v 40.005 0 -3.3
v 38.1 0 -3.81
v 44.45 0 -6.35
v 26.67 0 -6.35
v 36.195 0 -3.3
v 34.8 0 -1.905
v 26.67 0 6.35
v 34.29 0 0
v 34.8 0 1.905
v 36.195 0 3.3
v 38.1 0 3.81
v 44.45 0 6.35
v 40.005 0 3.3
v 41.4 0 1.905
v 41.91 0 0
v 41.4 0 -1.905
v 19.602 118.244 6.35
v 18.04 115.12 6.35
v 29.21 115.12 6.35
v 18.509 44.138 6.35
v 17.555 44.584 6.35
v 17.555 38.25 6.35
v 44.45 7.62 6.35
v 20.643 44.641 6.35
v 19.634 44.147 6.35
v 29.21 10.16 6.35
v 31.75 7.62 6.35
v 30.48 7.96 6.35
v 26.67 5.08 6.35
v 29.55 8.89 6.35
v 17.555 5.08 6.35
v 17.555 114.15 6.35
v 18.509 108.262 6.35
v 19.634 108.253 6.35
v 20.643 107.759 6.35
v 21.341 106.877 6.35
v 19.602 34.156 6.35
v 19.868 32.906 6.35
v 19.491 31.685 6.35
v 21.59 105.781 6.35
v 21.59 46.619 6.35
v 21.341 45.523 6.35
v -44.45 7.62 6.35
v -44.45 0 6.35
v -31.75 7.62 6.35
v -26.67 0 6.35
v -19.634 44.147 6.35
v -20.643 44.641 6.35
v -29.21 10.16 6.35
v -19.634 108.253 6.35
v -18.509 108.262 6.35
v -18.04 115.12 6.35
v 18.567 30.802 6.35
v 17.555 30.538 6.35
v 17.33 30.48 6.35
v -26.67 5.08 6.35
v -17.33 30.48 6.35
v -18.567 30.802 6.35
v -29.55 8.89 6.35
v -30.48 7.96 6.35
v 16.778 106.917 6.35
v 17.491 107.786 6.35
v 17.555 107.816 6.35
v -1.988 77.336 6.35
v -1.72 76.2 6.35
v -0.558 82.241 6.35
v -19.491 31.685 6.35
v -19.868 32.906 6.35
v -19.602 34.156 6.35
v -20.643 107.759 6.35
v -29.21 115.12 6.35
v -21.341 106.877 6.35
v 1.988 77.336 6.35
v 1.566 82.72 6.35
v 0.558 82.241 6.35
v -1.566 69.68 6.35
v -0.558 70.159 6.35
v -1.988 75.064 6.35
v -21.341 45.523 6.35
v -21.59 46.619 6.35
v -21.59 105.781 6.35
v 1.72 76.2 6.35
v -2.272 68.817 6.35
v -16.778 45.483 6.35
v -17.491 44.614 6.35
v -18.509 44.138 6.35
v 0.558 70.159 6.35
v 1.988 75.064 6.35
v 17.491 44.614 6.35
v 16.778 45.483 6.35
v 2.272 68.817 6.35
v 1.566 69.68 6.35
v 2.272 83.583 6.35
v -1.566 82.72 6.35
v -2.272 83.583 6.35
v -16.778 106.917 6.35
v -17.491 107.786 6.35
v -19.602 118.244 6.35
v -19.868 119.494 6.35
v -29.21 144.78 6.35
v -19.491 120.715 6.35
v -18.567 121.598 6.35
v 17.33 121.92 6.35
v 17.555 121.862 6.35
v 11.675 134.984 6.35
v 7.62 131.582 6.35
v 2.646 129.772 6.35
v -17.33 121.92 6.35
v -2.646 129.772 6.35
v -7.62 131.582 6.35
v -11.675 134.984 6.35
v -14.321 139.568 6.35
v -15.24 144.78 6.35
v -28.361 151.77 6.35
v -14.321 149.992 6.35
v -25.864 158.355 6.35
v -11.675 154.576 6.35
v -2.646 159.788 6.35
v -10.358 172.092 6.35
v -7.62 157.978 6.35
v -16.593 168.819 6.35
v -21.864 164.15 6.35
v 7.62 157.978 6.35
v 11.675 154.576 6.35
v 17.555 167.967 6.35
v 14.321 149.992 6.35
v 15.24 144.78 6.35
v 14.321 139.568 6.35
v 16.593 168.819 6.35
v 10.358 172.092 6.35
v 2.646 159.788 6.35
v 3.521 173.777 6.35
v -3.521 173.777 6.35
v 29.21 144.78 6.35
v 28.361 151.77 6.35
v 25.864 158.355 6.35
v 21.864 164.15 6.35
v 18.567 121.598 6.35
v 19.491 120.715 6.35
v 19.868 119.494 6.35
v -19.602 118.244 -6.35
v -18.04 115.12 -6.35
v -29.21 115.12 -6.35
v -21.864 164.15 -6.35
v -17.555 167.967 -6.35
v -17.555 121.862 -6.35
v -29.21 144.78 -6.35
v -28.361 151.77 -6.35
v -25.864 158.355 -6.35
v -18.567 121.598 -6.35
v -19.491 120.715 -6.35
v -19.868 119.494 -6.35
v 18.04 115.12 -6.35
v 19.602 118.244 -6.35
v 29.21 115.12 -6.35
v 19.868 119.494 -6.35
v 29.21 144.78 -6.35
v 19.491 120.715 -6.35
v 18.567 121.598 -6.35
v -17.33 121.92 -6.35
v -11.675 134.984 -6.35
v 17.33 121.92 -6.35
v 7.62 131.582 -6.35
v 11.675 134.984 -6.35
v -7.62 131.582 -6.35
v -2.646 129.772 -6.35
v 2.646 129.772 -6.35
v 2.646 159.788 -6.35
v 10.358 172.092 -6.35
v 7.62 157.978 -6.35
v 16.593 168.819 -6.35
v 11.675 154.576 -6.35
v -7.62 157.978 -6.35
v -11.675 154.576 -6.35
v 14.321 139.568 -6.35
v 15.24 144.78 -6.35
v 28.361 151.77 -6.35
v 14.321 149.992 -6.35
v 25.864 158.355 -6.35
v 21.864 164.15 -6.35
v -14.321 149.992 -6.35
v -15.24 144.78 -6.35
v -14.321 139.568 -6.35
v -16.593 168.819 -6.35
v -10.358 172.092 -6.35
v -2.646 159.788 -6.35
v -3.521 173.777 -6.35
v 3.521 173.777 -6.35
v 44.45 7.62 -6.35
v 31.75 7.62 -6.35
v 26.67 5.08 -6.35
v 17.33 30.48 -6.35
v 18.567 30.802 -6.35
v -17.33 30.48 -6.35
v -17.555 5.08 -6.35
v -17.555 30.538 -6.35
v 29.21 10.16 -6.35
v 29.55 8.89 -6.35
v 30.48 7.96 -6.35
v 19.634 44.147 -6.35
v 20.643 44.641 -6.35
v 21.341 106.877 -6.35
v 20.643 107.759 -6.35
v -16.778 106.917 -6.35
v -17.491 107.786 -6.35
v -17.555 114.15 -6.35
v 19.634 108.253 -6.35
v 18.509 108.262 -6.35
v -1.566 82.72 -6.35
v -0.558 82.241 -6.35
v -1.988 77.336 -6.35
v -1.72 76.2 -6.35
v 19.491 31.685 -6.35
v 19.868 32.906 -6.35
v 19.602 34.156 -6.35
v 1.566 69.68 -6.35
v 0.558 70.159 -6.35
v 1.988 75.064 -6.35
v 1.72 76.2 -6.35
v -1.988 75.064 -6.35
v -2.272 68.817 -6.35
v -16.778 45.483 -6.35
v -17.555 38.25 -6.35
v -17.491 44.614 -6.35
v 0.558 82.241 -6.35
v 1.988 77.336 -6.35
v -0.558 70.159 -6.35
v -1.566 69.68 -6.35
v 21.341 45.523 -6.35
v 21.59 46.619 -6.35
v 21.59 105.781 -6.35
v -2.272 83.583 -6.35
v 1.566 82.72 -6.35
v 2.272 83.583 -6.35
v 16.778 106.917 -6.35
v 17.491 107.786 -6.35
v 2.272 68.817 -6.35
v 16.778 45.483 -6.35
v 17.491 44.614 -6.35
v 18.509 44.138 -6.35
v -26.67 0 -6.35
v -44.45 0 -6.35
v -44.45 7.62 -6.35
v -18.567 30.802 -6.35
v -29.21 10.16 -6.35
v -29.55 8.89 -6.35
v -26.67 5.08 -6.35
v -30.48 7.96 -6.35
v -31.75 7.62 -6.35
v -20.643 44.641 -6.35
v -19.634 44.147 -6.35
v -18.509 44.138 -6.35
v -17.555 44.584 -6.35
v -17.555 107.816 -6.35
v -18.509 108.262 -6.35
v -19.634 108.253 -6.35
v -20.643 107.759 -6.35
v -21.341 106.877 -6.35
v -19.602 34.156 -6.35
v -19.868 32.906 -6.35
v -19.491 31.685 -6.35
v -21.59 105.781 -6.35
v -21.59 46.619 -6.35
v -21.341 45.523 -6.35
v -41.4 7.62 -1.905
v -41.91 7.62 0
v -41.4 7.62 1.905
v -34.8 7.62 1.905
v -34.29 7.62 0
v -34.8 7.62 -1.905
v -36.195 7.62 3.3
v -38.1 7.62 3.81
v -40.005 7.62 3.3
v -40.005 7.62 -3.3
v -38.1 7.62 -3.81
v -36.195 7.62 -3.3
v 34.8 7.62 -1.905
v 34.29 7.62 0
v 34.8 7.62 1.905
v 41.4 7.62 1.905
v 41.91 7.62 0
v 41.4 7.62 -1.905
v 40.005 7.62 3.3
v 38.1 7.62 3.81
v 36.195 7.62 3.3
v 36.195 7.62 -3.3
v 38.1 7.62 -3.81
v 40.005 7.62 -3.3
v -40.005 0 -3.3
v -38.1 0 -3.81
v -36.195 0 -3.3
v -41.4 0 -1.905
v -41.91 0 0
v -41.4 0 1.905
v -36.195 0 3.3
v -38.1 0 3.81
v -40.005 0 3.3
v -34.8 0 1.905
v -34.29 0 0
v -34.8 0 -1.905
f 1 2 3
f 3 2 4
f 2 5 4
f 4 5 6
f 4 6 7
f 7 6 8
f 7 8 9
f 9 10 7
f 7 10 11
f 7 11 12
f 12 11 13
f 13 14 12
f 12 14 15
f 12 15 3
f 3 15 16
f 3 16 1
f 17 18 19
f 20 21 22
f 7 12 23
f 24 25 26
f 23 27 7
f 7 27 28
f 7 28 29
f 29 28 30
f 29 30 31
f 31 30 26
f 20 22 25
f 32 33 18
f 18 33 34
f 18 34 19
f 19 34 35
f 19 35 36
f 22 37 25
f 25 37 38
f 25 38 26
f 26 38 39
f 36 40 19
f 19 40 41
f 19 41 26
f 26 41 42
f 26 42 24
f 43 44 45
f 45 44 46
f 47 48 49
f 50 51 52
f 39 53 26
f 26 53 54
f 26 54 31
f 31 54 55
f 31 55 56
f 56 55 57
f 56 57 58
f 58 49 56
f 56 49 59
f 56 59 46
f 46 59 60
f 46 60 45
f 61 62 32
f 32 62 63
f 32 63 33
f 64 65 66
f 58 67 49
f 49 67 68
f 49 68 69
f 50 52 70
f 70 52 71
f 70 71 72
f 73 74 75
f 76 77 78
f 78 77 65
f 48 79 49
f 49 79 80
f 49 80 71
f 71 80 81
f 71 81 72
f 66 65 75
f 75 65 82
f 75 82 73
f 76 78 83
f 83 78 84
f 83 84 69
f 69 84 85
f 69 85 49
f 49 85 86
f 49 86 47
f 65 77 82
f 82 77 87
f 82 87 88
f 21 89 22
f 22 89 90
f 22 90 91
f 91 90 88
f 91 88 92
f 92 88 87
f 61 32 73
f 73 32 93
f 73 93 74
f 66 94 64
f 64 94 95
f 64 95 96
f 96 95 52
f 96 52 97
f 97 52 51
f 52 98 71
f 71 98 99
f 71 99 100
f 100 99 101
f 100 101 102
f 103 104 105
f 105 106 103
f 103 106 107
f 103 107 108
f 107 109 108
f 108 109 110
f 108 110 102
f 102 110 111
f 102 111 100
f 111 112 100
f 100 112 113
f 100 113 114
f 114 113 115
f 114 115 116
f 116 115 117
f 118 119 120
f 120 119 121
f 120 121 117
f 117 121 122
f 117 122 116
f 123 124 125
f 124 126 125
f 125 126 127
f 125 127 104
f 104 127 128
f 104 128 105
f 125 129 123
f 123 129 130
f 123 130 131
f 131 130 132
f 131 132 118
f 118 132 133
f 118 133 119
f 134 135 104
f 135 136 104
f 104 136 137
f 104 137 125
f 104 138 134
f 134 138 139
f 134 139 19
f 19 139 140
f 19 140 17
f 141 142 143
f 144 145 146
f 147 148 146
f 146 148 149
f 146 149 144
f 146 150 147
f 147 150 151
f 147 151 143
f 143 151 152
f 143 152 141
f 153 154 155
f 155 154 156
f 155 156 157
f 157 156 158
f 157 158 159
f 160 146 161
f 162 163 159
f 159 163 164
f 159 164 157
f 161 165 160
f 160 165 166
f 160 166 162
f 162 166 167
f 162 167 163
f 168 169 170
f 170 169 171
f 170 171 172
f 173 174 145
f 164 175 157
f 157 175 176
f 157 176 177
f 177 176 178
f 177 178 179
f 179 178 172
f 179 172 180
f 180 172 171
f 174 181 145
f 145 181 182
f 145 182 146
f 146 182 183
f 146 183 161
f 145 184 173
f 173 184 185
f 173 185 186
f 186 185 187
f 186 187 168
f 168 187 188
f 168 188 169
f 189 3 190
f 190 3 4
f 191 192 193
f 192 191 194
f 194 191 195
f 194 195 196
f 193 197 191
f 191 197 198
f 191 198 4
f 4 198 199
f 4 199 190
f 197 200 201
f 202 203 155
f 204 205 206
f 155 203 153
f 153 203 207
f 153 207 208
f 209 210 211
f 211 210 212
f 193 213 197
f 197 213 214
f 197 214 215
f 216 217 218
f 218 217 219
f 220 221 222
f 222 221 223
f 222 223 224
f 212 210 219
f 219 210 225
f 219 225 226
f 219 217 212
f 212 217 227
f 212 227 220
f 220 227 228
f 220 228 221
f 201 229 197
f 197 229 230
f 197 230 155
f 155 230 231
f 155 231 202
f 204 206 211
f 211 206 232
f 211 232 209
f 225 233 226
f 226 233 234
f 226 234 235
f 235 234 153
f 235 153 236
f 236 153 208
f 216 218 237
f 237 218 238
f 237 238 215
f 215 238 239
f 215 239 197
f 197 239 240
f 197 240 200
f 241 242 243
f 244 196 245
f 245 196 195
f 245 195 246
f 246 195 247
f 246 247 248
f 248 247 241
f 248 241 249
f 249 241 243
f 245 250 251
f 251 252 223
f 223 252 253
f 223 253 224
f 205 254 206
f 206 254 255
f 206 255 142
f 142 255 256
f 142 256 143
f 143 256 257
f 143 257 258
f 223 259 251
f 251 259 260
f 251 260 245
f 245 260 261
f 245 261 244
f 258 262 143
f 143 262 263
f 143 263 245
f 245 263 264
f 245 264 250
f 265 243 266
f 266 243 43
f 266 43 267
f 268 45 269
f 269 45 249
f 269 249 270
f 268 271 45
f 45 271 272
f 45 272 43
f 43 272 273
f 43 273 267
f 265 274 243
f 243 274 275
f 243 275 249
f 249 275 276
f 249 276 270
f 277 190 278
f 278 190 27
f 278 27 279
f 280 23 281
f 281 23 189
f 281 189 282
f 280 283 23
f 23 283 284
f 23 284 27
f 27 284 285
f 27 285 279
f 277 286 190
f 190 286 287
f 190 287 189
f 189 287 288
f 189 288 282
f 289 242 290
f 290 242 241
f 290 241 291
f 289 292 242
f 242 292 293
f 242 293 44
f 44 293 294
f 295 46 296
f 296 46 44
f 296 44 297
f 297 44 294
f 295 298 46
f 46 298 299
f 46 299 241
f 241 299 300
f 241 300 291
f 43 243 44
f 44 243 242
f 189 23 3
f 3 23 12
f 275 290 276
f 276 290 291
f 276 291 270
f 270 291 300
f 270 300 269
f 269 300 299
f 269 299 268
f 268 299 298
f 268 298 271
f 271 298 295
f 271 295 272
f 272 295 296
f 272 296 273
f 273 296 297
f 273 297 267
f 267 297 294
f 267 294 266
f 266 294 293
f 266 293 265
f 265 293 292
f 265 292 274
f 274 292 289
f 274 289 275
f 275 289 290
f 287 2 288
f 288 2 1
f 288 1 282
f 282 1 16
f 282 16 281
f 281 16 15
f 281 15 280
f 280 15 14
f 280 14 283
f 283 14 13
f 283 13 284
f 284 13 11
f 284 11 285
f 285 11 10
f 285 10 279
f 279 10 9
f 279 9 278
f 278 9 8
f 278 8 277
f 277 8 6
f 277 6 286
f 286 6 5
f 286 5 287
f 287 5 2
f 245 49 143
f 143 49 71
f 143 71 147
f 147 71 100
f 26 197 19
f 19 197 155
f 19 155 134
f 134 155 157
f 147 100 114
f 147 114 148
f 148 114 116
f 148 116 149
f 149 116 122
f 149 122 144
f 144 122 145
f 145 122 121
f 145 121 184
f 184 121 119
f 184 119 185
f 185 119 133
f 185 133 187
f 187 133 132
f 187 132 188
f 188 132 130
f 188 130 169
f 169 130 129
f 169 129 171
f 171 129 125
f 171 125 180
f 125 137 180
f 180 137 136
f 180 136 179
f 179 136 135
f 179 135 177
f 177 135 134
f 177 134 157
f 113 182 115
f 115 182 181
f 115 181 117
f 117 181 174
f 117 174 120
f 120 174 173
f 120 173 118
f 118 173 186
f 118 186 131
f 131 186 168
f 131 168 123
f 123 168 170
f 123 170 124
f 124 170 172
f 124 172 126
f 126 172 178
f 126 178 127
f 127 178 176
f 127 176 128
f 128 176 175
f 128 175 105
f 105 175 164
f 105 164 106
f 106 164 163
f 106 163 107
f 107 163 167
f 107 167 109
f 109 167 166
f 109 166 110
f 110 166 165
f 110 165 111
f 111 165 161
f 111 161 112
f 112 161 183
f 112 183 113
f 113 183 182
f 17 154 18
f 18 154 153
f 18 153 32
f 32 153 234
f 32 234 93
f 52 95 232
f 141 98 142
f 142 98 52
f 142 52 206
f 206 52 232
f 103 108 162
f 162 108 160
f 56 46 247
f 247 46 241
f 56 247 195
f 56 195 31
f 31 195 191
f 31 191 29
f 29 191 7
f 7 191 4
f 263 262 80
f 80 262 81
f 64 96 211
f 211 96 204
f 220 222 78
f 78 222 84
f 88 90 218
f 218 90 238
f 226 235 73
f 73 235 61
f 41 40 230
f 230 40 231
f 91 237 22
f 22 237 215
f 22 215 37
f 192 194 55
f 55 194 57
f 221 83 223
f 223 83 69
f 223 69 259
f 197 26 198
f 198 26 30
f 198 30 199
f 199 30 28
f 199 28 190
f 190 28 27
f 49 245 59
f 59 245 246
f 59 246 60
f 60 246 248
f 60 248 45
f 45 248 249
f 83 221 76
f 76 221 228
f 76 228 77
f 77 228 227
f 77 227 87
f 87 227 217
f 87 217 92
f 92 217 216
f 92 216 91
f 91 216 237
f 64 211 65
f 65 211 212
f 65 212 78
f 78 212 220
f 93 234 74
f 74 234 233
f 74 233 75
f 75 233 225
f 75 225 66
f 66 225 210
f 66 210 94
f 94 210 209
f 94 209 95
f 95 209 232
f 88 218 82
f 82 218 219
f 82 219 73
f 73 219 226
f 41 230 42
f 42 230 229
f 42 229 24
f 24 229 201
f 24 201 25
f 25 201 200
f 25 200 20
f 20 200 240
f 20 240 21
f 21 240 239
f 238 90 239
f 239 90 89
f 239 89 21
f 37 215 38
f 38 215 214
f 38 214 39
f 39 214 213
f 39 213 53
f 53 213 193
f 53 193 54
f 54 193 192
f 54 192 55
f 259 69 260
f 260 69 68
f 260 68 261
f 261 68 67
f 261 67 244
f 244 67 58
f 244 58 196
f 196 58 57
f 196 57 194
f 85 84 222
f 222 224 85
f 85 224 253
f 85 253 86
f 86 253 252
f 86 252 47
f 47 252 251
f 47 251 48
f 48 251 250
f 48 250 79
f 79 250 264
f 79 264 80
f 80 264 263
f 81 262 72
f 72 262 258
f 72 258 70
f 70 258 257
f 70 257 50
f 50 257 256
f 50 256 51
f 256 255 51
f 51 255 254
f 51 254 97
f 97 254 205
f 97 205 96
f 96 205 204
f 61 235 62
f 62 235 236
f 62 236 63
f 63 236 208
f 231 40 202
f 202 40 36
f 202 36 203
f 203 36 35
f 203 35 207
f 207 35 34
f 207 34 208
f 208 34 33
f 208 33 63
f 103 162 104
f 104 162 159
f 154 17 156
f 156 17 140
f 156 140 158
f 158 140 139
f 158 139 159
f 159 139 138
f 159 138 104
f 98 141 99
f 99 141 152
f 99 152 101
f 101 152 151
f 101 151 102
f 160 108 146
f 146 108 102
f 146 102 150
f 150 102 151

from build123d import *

# Parameters (mm, degrees)
SKETCH1_W           = 88.9
SKETCH1_H           = 12.7
SKETCH1_R           = 3.81
BOSS_EXTRUDE1_DEPTH = 7.62
SKETCH2_W           = 58.42
SKETCH2_H           = 12.7
BOSS_EXTRUDE2_DEPTH = 137.16
BOSS_EXTRUDE3_DEPTH = 12.7
SKETCH4_R           = 15.24
CUT_EXTRUDE1_DEPTH  = 12.7
CUT_EXTRUDE2_REACH  = 14.7
SKETCH5_W           = 53.34
SKETCH5_H           = 5.08
FILLET1_R           = 2.54
FILLET2_R           = 2.54


with BuildPart() as part:
    # Sketch1 → Boss-Extrude1 (new body)
    with BuildSketch(Plane(origin=(0, 0, 0), x_dir=(1, 0, 0), z_dir=(0, 1, 0))):
        Rectangle(SKETCH1_W, SKETCH1_H)
        with Locations((-38.1, 0)):
            Circle(SKETCH1_R, mode=Mode.SUBTRACT)
        with Locations((38.1, 0)):
            Circle(SKETCH1_R, mode=Mode.SUBTRACT)
    extrude(amount=BOSS_EXTRUDE1_DEPTH)

    # Sketch2 → Boss-Extrude2 (add)
    with BuildSketch(Plane(origin=(0, 7.62, 0), x_dir=(1, 0, 0), z_dir=(0, 1, 0))):
        Rectangle(SKETCH2_W, SKETCH2_H)
    extrude(amount=BOSS_EXTRUDE2_DEPTH)

    # Sketch3 → Boss-Extrude3 (add)
    with BuildSketch(Plane.XY.offset(6.35)):
        with BuildLine():
            Line((29.21, 144.78), (-29.21, 144.78))
            ThreePointArc((-29.21, 144.78), (0, 173.99), (29.21, 144.78))
        make_face()
    extrude(amount=-BOSS_EXTRUDE3_DEPTH)

    # Sketch4 → Cut-Extrude1 (cut)
    with BuildSketch(Plane(origin=(0, 0, -6.35), x_dir=(-1, 0, 0), z_dir=(0, 0, -1))):
        with Locations((0, 144.78)):
            Circle(SKETCH4_R)
    extrude(amount=-CUT_EXTRUDE1_DEPTH, mode=Mode.SUBTRACT)

    # Sketch5 → Cut-Extrude2 (cut, up to next)
    with BuildSketch(Plane.XY.offset(6.35), mode=Mode.PRIVATE) as cut_extrude2_sk1:
        Polygon((-21.440096834, 121.92), (21.440096834, 121.92), (0, 79.039806331), align=None)
    cut_extrude2_tool1 = extrude(cut_extrude2_sk1.sketch, amount=-CUT_EXTRUDE2_REACH, mode=Mode.PRIVATE) & part.part
    add(cut_extrude2_tool1.solids().sort_by_distance((0, 107.626602, 6.35))[0], mode=Mode.SUBTRACT)
    # Sketch5 → Cut-Extrude2 (cut, up to next)
    with BuildSketch(Plane.XY.offset(6.35), mode=Mode.PRIVATE) as cut_extrude2_sk2:
        Polygon((-21.59, 116.540193669), (-1.419903166, 76.2), (-21.59, 35.859806331), align=None)
    cut_extrude2_tool2 = extrude(cut_extrude2_sk2.sketch, amount=-CUT_EXTRUDE2_REACH, mode=Mode.PRIVATE) & part.part
    add(cut_extrude2_tool2.solids().sort_by_distance((-14.866634, 76.2, 6.35))[0], mode=Mode.SUBTRACT)
    # Sketch5 → Cut-Extrude2 (cut, up to next)
    with BuildSketch(Plane.XY.offset(6.35), mode=Mode.PRIVATE) as cut_extrude2_sk3:
        Polygon((0, 73.360193669), (-21.440096834, 30.48), (21.440096834, 30.48), align=None)
    cut_extrude2_tool3 = extrude(cut_extrude2_sk3.sketch, amount=-CUT_EXTRUDE2_REACH, mode=Mode.PRIVATE) & part.part
    add(cut_extrude2_tool3.solids().sort_by_distance((0, 44.773398, 6.35))[0], mode=Mode.SUBTRACT)
    # Sketch5 → Cut-Extrude2 (cut, up to next)
    with BuildSketch(Plane.XY.offset(6.35), mode=Mode.PRIVATE) as cut_extrude2_sk4:
        Polygon((21.59, 116.540193669), (21.59, 35.859806331), (1.419903166, 76.2), align=None)
    cut_extrude2_tool4 = extrude(cut_extrude2_sk4.sketch, amount=-CUT_EXTRUDE2_REACH, mode=Mode.PRIVATE) & part.part
    add(cut_extrude2_tool4.solids().sort_by_distance((14.866634, 76.2, 6.35))[0], mode=Mode.SUBTRACT)
    # Sketch5 → Cut-Extrude2 (cut, up to next)
    with BuildSketch(Plane.XY.offset(6.35), mode=Mode.PRIVATE) as cut_extrude2_sk5:
        with Locations((0, 2.54)):
            Rectangle(SKETCH5_W, SKETCH5_H)
    cut_extrude2_tool5 = extrude(cut_extrude2_sk5.sketch, amount=-CUT_EXTRUDE2_REACH, mode=Mode.PRIVATE) & part.part
    add(cut_extrude2_tool5.solids().sort_by_distance((0, 2.54, 6.35))[0], mode=Mode.SUBTRACT)

    # Fillet1
    fillet1_edges = [part.edges().sort_by_distance(p)[0] for p in [
        (-29.21, 7.62, 0),
        (29.21, 7.62, 0),
    ]]
    fillet(fillet1_edges, radius=FILLET1_R)

    # Fillet2
    fillet2_edges = [part.edges().sort_by_distance(p)[0] for p in [
        (0, 73.360193669, 0),
        (21.440096834, 30.48, 0),
        (-21.440096834, 30.48, 0),
        (21.59, 35.859806331, 0),
        (1.419903166, 76.2, 0),
        (21.59, 116.540193669, 0),
        (-21.59, 35.859806331, 0),
        (-21.59, 116.540193669, 0),
        (-1.419903166, 76.2, 0),
        (21.440096834, 121.92, 0),
        (0, 79.039806331, 0),
        (-21.440096834, 121.92, 0),
    ]]
    fillet(fillet2_edges, radius=FILLET2_R)


solid = part.part
